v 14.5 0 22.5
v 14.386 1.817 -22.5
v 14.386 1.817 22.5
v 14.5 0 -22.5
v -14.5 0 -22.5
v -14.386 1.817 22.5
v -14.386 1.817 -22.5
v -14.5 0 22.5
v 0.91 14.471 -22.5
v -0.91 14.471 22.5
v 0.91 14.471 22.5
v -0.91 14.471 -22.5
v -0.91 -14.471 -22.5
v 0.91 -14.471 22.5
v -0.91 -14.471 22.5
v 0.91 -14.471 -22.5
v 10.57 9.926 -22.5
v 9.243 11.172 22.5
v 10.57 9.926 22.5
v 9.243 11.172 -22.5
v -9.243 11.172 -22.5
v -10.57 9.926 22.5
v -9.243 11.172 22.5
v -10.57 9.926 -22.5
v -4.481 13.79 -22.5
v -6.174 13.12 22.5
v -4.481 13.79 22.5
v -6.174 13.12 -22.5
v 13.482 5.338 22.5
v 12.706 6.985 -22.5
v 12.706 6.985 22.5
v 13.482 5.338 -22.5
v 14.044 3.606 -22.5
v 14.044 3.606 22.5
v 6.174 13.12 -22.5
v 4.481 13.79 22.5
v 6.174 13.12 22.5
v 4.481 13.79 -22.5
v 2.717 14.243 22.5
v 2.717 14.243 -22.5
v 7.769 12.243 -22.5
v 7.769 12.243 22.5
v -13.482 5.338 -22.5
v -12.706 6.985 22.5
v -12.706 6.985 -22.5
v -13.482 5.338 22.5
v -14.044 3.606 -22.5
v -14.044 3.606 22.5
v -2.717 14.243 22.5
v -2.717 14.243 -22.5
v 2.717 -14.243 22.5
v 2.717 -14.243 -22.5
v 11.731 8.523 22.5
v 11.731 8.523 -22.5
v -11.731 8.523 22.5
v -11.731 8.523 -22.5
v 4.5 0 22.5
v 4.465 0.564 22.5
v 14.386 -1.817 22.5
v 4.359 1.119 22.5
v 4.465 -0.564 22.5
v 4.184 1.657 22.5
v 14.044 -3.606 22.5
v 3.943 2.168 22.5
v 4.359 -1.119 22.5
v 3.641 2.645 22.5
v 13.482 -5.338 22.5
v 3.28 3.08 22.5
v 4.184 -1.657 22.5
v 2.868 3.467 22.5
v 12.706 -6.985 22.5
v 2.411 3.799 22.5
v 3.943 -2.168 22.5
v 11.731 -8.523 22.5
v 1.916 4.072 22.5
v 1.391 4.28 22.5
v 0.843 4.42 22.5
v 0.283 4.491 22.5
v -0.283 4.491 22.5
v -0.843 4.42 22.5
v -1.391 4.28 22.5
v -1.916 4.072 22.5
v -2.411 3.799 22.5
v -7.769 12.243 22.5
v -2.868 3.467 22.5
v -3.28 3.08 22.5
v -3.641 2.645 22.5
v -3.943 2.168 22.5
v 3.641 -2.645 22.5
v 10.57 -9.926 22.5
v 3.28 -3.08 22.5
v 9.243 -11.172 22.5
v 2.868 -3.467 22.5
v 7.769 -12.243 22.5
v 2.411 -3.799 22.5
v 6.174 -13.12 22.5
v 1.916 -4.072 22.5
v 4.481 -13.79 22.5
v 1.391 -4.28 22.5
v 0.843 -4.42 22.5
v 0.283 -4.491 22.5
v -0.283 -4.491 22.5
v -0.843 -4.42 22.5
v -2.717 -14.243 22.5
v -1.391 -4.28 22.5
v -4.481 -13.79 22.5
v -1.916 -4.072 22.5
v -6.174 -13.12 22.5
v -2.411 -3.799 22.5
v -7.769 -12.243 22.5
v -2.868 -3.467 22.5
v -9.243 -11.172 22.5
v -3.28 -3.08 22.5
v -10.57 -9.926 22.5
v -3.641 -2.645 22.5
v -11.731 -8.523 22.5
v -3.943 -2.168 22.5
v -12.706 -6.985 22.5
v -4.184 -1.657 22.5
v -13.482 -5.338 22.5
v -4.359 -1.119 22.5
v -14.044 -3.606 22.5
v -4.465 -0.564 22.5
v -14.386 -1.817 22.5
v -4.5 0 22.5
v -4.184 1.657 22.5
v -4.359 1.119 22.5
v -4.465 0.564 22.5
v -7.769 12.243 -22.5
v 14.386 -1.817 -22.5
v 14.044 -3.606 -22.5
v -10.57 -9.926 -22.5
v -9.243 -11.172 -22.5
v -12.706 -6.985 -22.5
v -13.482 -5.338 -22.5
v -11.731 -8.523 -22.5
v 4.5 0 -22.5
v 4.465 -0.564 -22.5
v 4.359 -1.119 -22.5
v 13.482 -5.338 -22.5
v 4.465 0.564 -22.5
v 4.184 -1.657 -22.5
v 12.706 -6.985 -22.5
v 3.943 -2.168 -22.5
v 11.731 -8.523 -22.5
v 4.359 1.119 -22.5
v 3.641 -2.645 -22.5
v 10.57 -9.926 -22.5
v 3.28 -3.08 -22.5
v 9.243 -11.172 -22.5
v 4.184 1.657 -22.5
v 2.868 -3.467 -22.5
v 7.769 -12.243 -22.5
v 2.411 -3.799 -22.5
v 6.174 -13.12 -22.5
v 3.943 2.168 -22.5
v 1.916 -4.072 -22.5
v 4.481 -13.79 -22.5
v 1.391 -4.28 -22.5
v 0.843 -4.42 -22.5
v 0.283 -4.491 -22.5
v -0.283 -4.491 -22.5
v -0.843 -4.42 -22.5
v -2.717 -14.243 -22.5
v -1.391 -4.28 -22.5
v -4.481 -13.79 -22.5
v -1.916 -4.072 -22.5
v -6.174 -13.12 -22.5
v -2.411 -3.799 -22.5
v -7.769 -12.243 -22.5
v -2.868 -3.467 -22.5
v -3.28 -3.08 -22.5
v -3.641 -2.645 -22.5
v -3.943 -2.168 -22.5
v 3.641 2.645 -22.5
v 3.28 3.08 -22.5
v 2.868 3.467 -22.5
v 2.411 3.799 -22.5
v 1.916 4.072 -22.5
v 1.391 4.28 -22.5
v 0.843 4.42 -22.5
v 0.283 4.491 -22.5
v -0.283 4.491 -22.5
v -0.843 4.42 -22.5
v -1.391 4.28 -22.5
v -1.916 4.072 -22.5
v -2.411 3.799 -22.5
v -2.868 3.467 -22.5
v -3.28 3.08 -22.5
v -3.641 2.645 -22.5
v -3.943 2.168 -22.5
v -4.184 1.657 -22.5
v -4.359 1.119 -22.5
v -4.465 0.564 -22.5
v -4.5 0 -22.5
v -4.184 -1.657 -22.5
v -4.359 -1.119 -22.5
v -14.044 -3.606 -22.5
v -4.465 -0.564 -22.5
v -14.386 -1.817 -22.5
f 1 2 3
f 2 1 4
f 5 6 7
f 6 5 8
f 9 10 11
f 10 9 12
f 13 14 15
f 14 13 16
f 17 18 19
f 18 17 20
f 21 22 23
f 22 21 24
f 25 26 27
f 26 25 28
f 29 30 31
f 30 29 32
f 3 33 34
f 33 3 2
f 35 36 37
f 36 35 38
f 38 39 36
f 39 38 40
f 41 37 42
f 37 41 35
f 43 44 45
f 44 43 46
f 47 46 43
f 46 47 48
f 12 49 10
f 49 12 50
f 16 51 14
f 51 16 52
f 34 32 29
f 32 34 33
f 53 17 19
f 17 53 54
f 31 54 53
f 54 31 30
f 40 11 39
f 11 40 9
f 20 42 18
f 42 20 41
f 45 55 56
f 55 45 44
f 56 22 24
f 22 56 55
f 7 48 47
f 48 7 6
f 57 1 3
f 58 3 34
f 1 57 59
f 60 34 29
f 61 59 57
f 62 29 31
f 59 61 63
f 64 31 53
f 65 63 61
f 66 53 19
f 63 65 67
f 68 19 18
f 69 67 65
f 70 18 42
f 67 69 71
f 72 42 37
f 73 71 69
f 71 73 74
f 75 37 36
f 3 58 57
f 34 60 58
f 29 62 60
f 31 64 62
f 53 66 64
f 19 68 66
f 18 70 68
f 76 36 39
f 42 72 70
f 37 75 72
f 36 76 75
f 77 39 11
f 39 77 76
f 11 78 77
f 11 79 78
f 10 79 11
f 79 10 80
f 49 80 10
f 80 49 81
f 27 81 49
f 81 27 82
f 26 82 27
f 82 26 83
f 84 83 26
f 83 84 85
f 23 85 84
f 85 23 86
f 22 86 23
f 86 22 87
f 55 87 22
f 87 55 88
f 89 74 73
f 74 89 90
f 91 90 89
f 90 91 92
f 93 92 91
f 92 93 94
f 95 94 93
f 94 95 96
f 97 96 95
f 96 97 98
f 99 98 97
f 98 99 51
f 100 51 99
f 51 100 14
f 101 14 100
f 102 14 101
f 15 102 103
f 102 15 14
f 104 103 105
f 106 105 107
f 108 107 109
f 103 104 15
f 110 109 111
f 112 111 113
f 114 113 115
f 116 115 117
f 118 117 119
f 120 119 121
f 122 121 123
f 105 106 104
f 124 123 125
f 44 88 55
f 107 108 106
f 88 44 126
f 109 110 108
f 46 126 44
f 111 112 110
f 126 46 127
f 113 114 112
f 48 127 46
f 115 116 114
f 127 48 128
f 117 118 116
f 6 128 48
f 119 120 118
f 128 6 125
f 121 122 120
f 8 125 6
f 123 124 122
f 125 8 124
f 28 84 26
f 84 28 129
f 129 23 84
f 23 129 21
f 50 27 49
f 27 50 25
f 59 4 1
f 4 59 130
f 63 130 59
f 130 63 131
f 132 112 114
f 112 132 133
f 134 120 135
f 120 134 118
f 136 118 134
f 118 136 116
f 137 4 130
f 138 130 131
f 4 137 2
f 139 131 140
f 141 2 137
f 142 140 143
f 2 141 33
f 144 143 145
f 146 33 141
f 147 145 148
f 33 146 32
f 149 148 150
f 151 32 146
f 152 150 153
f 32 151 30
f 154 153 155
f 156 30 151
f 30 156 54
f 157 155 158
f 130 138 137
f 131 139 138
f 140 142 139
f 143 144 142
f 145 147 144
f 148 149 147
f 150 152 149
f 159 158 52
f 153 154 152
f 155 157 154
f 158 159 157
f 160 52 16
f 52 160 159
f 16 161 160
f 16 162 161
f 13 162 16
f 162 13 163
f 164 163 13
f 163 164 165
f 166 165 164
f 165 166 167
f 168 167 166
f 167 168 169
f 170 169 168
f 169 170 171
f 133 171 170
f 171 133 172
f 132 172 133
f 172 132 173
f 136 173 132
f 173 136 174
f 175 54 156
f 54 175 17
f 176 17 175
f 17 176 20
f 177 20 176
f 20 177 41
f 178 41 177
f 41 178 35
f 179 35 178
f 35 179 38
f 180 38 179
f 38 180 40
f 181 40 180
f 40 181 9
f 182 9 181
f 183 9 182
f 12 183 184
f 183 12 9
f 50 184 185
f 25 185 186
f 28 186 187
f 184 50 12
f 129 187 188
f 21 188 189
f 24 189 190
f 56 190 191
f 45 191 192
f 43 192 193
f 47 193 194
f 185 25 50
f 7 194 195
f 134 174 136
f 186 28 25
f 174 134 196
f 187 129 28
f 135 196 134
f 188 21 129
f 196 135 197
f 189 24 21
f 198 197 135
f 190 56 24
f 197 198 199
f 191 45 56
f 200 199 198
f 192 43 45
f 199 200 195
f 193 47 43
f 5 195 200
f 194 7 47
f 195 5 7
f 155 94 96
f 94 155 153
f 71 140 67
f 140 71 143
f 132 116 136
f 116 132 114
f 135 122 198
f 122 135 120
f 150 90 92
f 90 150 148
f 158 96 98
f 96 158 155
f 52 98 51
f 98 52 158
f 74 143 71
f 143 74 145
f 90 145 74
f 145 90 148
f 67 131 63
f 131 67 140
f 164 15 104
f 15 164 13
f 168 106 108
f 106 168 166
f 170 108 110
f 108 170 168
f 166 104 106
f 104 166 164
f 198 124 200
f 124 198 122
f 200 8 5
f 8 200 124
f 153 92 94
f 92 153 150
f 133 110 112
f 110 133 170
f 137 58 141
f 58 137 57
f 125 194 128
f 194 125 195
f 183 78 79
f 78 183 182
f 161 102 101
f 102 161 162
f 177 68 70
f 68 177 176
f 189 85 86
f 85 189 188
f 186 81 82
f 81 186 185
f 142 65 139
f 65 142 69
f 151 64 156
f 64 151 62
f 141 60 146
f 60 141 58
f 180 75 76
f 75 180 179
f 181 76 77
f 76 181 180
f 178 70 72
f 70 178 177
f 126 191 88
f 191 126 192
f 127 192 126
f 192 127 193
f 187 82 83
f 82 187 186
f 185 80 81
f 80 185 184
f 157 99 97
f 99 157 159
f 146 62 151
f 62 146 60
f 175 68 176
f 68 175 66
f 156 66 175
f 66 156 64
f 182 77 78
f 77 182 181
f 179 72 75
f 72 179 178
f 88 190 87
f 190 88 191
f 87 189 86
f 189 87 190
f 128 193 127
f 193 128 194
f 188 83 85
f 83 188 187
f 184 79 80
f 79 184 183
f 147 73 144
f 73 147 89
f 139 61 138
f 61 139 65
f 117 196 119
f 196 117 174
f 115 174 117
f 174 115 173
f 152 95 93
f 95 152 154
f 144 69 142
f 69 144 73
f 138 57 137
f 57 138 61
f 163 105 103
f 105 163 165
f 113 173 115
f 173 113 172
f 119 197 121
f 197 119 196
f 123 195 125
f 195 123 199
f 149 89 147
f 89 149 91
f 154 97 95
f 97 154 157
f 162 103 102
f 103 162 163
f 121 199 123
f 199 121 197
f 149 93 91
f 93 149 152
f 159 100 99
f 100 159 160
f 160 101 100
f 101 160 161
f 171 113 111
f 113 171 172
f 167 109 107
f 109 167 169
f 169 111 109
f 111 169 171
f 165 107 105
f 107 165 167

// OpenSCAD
$fn = 50;


difference() {
	union() {
		translate(v = [0, 0, -22.5000000000]) {
			cylinder(h = 45, r = 14.5000000000);
		}
	}
	union() {
		translate(v = [0, 0, -100.0000000000]) {
			cylinder(h = 200, r = 4.5000000000);
		}
	}
}
